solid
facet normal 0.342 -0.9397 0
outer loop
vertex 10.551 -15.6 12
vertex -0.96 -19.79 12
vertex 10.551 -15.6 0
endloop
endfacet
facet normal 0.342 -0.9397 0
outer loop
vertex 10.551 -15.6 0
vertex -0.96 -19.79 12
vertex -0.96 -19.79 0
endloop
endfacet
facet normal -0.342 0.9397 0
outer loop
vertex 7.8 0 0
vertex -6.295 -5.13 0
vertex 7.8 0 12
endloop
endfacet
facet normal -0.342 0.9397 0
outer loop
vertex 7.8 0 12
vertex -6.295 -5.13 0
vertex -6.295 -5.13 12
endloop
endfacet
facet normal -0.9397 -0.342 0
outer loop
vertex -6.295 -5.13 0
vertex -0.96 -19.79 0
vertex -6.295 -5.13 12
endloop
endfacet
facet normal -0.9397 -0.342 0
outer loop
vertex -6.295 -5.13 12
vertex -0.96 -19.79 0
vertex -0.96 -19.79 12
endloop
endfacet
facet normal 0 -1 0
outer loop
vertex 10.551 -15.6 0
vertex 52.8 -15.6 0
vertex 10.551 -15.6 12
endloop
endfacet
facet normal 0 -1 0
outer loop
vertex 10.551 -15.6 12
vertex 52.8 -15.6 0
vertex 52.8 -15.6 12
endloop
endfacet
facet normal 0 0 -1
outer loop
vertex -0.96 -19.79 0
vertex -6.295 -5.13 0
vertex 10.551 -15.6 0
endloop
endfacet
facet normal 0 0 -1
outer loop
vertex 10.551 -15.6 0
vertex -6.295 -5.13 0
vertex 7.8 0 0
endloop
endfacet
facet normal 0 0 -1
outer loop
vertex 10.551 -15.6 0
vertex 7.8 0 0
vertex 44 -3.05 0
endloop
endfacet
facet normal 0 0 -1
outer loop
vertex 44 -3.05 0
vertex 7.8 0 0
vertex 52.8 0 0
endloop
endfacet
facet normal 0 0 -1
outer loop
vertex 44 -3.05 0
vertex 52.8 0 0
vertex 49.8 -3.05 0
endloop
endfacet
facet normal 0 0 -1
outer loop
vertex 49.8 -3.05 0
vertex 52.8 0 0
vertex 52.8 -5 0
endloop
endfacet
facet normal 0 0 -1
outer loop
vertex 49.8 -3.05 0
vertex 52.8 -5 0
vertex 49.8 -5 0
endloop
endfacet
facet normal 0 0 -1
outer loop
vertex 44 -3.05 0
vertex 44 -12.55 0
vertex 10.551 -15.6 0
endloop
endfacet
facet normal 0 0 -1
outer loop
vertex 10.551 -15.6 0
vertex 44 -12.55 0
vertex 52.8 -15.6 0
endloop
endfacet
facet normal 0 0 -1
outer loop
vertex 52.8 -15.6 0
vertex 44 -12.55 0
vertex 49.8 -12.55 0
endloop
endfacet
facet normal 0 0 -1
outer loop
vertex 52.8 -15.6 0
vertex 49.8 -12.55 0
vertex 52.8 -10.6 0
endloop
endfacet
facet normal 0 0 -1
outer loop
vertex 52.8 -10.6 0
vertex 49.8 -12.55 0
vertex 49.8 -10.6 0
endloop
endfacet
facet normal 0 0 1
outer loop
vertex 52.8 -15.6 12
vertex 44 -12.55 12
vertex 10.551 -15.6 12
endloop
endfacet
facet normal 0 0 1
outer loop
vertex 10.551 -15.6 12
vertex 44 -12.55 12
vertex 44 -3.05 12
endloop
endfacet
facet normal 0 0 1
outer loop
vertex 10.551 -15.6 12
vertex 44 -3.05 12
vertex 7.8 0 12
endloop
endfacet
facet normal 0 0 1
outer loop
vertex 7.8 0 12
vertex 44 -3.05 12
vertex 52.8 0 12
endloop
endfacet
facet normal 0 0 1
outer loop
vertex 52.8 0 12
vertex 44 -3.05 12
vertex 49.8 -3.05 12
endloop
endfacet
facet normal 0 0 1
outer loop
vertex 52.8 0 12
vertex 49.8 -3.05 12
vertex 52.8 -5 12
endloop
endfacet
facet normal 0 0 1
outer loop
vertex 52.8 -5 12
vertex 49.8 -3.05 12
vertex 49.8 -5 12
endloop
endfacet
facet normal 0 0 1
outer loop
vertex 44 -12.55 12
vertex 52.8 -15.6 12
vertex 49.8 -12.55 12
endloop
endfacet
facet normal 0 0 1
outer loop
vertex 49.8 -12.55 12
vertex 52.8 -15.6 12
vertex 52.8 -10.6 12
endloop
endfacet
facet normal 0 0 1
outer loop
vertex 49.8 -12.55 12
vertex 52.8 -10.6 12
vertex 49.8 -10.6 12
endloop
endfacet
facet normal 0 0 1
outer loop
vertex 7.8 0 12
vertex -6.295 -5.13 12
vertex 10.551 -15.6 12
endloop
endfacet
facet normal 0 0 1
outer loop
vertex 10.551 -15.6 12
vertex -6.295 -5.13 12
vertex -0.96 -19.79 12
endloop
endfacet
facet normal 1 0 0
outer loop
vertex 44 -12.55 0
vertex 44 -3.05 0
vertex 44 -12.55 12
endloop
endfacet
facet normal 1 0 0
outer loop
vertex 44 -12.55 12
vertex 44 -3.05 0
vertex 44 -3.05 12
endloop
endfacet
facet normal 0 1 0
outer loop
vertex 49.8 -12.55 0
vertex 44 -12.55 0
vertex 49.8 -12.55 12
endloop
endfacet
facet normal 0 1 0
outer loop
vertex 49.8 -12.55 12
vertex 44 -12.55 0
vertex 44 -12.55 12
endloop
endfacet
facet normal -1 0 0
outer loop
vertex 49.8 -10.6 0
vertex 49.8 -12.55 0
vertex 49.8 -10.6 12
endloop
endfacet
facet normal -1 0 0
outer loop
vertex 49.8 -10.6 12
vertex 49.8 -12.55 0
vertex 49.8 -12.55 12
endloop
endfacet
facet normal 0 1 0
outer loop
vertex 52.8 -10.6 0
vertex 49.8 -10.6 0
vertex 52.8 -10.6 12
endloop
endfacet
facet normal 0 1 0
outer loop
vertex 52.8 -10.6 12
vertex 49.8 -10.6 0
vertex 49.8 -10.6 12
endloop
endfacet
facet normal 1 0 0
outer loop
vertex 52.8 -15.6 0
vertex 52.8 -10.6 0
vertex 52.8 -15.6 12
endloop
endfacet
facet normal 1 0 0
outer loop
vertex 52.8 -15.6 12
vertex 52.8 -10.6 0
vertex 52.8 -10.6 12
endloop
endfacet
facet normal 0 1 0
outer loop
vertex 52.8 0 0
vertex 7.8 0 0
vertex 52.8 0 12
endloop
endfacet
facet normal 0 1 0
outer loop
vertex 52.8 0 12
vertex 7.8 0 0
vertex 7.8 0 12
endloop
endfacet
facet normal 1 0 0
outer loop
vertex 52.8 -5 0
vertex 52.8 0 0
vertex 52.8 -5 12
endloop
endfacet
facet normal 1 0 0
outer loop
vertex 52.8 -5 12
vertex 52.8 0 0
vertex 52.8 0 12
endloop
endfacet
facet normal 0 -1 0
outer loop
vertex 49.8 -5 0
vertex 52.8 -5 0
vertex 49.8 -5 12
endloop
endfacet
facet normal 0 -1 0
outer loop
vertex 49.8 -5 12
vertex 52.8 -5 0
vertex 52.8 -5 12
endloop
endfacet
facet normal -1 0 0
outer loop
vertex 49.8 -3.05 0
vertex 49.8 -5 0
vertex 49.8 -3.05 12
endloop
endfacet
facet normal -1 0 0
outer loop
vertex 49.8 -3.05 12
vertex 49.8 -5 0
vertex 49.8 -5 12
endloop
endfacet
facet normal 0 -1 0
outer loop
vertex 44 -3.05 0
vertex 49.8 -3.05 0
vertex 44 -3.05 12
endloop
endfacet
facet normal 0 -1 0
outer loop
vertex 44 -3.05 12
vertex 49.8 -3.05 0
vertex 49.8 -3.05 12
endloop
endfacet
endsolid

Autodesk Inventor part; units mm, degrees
ref_plane "YZ Plane" through (0, 0, 0) normal (1, 0, 0) x (0, 1, 0)
ref_plane "XZ Plane" through (0, 0, 0) normal (0, 1, 0) x (-1, 0, 0)
ref_plane "XY Plane" through (0, 0, 0) normal (0, 0, 1) x (1, 0, 0)
sketch "Sketch5" plane through (0, 0, 0) normal (0, 0, 1) x (1, 0, 0)
  line L0 (52.8, -15.6) -> (52.8, -10.6)
  line L1 (52.8, -10.6) -> (49.8, -10.6)
  line L2 (49.8, -10.6) -> (49.8, -12.55)
  line L3 (44, -12.55) -> (44, -3.05)
  line L4 (49.8, -3.05) -> (49.8, -5)
  line L5 (49.8, -5) -> (52.8, -5)
  line L6 (52.8, -5) -> (52.8, 0)
  line L7 (52.8, 0) -> (7.8, 0)
  line L8 (44, -3.05) -> (49.8, -3.05)
  line L9 (44, -12.55) -> (49.8, -12.55)
  line L10 (52.8, -15.6) -> (7.8, -15.6)
  arc A0 (7.8, 0) -> (7.8, -15.6) centre (7.8, -7.8) ccw
  point P0 (0, 0)
  dimension "d41" = 5.8
  dimension "d48" = 44
  dimension "d50" = 3
  dimension "d63" = 45
  dimension "d67" = 15.6
  dimension "d71" = 0
  dimension "d72" = 36.2
  dimension "d80" = 5.6
  dimension "d81" = 9.5
extrude "Extrusion2" add sketch "Sketch5" along normal blind 12
sketch "Sketch7" plane through (0, 0, 12) normal (0, 0, 1) x (1, 0, 0)
  line L0 (52.8, 0) -> (7.8, 0) projected
  line L1 (7.8, 0) -> (0, 0)
  line L2 (0, 0) -> (0, -15.6)
  line L3 (0, -15.6) -> (7.8, -15.6)
  line L4 (7.8, -15.6) -> (7.8, 0)
  point P0 (0, 0)
extrude "Extrusion4" cut sketch "Sketch7" against normal through all
sketch "Sketch9" plane through (0, 0, 12) normal (0, 0, 1) x (1, 0, 0)
  line L0 (52.8, 0) -> (7.8, 0) projected
  line L1 (7.8, 0) -> (-6.2954, -5.1303)
  line L2 (-6.2954, -5.1303) -> (-0.9599, -19.7895)
  line L3 (-0.9599, -19.7895) -> (13.1355, -14.6592)
  line L4 (7.8, 0) -> (13.1355, -14.6592)
  line L5 (7.8, 0) -> (7.8, -15.6) projected
  point P0 (0, 0)
  dimension "d83" = 15.6
  dimension "d84" = 20
  dimension "d85" = 90
  dimension "d86" = 20
  dimension "d87" = 15
  dimension "d90" = 15
extrude "Extrusion5" add sketch "Sketch9" against normal up to surface (12 mm away)
equation "\"l1\" = 8"
properties part number "Finray_test_8_Flach_winkel10deg"
